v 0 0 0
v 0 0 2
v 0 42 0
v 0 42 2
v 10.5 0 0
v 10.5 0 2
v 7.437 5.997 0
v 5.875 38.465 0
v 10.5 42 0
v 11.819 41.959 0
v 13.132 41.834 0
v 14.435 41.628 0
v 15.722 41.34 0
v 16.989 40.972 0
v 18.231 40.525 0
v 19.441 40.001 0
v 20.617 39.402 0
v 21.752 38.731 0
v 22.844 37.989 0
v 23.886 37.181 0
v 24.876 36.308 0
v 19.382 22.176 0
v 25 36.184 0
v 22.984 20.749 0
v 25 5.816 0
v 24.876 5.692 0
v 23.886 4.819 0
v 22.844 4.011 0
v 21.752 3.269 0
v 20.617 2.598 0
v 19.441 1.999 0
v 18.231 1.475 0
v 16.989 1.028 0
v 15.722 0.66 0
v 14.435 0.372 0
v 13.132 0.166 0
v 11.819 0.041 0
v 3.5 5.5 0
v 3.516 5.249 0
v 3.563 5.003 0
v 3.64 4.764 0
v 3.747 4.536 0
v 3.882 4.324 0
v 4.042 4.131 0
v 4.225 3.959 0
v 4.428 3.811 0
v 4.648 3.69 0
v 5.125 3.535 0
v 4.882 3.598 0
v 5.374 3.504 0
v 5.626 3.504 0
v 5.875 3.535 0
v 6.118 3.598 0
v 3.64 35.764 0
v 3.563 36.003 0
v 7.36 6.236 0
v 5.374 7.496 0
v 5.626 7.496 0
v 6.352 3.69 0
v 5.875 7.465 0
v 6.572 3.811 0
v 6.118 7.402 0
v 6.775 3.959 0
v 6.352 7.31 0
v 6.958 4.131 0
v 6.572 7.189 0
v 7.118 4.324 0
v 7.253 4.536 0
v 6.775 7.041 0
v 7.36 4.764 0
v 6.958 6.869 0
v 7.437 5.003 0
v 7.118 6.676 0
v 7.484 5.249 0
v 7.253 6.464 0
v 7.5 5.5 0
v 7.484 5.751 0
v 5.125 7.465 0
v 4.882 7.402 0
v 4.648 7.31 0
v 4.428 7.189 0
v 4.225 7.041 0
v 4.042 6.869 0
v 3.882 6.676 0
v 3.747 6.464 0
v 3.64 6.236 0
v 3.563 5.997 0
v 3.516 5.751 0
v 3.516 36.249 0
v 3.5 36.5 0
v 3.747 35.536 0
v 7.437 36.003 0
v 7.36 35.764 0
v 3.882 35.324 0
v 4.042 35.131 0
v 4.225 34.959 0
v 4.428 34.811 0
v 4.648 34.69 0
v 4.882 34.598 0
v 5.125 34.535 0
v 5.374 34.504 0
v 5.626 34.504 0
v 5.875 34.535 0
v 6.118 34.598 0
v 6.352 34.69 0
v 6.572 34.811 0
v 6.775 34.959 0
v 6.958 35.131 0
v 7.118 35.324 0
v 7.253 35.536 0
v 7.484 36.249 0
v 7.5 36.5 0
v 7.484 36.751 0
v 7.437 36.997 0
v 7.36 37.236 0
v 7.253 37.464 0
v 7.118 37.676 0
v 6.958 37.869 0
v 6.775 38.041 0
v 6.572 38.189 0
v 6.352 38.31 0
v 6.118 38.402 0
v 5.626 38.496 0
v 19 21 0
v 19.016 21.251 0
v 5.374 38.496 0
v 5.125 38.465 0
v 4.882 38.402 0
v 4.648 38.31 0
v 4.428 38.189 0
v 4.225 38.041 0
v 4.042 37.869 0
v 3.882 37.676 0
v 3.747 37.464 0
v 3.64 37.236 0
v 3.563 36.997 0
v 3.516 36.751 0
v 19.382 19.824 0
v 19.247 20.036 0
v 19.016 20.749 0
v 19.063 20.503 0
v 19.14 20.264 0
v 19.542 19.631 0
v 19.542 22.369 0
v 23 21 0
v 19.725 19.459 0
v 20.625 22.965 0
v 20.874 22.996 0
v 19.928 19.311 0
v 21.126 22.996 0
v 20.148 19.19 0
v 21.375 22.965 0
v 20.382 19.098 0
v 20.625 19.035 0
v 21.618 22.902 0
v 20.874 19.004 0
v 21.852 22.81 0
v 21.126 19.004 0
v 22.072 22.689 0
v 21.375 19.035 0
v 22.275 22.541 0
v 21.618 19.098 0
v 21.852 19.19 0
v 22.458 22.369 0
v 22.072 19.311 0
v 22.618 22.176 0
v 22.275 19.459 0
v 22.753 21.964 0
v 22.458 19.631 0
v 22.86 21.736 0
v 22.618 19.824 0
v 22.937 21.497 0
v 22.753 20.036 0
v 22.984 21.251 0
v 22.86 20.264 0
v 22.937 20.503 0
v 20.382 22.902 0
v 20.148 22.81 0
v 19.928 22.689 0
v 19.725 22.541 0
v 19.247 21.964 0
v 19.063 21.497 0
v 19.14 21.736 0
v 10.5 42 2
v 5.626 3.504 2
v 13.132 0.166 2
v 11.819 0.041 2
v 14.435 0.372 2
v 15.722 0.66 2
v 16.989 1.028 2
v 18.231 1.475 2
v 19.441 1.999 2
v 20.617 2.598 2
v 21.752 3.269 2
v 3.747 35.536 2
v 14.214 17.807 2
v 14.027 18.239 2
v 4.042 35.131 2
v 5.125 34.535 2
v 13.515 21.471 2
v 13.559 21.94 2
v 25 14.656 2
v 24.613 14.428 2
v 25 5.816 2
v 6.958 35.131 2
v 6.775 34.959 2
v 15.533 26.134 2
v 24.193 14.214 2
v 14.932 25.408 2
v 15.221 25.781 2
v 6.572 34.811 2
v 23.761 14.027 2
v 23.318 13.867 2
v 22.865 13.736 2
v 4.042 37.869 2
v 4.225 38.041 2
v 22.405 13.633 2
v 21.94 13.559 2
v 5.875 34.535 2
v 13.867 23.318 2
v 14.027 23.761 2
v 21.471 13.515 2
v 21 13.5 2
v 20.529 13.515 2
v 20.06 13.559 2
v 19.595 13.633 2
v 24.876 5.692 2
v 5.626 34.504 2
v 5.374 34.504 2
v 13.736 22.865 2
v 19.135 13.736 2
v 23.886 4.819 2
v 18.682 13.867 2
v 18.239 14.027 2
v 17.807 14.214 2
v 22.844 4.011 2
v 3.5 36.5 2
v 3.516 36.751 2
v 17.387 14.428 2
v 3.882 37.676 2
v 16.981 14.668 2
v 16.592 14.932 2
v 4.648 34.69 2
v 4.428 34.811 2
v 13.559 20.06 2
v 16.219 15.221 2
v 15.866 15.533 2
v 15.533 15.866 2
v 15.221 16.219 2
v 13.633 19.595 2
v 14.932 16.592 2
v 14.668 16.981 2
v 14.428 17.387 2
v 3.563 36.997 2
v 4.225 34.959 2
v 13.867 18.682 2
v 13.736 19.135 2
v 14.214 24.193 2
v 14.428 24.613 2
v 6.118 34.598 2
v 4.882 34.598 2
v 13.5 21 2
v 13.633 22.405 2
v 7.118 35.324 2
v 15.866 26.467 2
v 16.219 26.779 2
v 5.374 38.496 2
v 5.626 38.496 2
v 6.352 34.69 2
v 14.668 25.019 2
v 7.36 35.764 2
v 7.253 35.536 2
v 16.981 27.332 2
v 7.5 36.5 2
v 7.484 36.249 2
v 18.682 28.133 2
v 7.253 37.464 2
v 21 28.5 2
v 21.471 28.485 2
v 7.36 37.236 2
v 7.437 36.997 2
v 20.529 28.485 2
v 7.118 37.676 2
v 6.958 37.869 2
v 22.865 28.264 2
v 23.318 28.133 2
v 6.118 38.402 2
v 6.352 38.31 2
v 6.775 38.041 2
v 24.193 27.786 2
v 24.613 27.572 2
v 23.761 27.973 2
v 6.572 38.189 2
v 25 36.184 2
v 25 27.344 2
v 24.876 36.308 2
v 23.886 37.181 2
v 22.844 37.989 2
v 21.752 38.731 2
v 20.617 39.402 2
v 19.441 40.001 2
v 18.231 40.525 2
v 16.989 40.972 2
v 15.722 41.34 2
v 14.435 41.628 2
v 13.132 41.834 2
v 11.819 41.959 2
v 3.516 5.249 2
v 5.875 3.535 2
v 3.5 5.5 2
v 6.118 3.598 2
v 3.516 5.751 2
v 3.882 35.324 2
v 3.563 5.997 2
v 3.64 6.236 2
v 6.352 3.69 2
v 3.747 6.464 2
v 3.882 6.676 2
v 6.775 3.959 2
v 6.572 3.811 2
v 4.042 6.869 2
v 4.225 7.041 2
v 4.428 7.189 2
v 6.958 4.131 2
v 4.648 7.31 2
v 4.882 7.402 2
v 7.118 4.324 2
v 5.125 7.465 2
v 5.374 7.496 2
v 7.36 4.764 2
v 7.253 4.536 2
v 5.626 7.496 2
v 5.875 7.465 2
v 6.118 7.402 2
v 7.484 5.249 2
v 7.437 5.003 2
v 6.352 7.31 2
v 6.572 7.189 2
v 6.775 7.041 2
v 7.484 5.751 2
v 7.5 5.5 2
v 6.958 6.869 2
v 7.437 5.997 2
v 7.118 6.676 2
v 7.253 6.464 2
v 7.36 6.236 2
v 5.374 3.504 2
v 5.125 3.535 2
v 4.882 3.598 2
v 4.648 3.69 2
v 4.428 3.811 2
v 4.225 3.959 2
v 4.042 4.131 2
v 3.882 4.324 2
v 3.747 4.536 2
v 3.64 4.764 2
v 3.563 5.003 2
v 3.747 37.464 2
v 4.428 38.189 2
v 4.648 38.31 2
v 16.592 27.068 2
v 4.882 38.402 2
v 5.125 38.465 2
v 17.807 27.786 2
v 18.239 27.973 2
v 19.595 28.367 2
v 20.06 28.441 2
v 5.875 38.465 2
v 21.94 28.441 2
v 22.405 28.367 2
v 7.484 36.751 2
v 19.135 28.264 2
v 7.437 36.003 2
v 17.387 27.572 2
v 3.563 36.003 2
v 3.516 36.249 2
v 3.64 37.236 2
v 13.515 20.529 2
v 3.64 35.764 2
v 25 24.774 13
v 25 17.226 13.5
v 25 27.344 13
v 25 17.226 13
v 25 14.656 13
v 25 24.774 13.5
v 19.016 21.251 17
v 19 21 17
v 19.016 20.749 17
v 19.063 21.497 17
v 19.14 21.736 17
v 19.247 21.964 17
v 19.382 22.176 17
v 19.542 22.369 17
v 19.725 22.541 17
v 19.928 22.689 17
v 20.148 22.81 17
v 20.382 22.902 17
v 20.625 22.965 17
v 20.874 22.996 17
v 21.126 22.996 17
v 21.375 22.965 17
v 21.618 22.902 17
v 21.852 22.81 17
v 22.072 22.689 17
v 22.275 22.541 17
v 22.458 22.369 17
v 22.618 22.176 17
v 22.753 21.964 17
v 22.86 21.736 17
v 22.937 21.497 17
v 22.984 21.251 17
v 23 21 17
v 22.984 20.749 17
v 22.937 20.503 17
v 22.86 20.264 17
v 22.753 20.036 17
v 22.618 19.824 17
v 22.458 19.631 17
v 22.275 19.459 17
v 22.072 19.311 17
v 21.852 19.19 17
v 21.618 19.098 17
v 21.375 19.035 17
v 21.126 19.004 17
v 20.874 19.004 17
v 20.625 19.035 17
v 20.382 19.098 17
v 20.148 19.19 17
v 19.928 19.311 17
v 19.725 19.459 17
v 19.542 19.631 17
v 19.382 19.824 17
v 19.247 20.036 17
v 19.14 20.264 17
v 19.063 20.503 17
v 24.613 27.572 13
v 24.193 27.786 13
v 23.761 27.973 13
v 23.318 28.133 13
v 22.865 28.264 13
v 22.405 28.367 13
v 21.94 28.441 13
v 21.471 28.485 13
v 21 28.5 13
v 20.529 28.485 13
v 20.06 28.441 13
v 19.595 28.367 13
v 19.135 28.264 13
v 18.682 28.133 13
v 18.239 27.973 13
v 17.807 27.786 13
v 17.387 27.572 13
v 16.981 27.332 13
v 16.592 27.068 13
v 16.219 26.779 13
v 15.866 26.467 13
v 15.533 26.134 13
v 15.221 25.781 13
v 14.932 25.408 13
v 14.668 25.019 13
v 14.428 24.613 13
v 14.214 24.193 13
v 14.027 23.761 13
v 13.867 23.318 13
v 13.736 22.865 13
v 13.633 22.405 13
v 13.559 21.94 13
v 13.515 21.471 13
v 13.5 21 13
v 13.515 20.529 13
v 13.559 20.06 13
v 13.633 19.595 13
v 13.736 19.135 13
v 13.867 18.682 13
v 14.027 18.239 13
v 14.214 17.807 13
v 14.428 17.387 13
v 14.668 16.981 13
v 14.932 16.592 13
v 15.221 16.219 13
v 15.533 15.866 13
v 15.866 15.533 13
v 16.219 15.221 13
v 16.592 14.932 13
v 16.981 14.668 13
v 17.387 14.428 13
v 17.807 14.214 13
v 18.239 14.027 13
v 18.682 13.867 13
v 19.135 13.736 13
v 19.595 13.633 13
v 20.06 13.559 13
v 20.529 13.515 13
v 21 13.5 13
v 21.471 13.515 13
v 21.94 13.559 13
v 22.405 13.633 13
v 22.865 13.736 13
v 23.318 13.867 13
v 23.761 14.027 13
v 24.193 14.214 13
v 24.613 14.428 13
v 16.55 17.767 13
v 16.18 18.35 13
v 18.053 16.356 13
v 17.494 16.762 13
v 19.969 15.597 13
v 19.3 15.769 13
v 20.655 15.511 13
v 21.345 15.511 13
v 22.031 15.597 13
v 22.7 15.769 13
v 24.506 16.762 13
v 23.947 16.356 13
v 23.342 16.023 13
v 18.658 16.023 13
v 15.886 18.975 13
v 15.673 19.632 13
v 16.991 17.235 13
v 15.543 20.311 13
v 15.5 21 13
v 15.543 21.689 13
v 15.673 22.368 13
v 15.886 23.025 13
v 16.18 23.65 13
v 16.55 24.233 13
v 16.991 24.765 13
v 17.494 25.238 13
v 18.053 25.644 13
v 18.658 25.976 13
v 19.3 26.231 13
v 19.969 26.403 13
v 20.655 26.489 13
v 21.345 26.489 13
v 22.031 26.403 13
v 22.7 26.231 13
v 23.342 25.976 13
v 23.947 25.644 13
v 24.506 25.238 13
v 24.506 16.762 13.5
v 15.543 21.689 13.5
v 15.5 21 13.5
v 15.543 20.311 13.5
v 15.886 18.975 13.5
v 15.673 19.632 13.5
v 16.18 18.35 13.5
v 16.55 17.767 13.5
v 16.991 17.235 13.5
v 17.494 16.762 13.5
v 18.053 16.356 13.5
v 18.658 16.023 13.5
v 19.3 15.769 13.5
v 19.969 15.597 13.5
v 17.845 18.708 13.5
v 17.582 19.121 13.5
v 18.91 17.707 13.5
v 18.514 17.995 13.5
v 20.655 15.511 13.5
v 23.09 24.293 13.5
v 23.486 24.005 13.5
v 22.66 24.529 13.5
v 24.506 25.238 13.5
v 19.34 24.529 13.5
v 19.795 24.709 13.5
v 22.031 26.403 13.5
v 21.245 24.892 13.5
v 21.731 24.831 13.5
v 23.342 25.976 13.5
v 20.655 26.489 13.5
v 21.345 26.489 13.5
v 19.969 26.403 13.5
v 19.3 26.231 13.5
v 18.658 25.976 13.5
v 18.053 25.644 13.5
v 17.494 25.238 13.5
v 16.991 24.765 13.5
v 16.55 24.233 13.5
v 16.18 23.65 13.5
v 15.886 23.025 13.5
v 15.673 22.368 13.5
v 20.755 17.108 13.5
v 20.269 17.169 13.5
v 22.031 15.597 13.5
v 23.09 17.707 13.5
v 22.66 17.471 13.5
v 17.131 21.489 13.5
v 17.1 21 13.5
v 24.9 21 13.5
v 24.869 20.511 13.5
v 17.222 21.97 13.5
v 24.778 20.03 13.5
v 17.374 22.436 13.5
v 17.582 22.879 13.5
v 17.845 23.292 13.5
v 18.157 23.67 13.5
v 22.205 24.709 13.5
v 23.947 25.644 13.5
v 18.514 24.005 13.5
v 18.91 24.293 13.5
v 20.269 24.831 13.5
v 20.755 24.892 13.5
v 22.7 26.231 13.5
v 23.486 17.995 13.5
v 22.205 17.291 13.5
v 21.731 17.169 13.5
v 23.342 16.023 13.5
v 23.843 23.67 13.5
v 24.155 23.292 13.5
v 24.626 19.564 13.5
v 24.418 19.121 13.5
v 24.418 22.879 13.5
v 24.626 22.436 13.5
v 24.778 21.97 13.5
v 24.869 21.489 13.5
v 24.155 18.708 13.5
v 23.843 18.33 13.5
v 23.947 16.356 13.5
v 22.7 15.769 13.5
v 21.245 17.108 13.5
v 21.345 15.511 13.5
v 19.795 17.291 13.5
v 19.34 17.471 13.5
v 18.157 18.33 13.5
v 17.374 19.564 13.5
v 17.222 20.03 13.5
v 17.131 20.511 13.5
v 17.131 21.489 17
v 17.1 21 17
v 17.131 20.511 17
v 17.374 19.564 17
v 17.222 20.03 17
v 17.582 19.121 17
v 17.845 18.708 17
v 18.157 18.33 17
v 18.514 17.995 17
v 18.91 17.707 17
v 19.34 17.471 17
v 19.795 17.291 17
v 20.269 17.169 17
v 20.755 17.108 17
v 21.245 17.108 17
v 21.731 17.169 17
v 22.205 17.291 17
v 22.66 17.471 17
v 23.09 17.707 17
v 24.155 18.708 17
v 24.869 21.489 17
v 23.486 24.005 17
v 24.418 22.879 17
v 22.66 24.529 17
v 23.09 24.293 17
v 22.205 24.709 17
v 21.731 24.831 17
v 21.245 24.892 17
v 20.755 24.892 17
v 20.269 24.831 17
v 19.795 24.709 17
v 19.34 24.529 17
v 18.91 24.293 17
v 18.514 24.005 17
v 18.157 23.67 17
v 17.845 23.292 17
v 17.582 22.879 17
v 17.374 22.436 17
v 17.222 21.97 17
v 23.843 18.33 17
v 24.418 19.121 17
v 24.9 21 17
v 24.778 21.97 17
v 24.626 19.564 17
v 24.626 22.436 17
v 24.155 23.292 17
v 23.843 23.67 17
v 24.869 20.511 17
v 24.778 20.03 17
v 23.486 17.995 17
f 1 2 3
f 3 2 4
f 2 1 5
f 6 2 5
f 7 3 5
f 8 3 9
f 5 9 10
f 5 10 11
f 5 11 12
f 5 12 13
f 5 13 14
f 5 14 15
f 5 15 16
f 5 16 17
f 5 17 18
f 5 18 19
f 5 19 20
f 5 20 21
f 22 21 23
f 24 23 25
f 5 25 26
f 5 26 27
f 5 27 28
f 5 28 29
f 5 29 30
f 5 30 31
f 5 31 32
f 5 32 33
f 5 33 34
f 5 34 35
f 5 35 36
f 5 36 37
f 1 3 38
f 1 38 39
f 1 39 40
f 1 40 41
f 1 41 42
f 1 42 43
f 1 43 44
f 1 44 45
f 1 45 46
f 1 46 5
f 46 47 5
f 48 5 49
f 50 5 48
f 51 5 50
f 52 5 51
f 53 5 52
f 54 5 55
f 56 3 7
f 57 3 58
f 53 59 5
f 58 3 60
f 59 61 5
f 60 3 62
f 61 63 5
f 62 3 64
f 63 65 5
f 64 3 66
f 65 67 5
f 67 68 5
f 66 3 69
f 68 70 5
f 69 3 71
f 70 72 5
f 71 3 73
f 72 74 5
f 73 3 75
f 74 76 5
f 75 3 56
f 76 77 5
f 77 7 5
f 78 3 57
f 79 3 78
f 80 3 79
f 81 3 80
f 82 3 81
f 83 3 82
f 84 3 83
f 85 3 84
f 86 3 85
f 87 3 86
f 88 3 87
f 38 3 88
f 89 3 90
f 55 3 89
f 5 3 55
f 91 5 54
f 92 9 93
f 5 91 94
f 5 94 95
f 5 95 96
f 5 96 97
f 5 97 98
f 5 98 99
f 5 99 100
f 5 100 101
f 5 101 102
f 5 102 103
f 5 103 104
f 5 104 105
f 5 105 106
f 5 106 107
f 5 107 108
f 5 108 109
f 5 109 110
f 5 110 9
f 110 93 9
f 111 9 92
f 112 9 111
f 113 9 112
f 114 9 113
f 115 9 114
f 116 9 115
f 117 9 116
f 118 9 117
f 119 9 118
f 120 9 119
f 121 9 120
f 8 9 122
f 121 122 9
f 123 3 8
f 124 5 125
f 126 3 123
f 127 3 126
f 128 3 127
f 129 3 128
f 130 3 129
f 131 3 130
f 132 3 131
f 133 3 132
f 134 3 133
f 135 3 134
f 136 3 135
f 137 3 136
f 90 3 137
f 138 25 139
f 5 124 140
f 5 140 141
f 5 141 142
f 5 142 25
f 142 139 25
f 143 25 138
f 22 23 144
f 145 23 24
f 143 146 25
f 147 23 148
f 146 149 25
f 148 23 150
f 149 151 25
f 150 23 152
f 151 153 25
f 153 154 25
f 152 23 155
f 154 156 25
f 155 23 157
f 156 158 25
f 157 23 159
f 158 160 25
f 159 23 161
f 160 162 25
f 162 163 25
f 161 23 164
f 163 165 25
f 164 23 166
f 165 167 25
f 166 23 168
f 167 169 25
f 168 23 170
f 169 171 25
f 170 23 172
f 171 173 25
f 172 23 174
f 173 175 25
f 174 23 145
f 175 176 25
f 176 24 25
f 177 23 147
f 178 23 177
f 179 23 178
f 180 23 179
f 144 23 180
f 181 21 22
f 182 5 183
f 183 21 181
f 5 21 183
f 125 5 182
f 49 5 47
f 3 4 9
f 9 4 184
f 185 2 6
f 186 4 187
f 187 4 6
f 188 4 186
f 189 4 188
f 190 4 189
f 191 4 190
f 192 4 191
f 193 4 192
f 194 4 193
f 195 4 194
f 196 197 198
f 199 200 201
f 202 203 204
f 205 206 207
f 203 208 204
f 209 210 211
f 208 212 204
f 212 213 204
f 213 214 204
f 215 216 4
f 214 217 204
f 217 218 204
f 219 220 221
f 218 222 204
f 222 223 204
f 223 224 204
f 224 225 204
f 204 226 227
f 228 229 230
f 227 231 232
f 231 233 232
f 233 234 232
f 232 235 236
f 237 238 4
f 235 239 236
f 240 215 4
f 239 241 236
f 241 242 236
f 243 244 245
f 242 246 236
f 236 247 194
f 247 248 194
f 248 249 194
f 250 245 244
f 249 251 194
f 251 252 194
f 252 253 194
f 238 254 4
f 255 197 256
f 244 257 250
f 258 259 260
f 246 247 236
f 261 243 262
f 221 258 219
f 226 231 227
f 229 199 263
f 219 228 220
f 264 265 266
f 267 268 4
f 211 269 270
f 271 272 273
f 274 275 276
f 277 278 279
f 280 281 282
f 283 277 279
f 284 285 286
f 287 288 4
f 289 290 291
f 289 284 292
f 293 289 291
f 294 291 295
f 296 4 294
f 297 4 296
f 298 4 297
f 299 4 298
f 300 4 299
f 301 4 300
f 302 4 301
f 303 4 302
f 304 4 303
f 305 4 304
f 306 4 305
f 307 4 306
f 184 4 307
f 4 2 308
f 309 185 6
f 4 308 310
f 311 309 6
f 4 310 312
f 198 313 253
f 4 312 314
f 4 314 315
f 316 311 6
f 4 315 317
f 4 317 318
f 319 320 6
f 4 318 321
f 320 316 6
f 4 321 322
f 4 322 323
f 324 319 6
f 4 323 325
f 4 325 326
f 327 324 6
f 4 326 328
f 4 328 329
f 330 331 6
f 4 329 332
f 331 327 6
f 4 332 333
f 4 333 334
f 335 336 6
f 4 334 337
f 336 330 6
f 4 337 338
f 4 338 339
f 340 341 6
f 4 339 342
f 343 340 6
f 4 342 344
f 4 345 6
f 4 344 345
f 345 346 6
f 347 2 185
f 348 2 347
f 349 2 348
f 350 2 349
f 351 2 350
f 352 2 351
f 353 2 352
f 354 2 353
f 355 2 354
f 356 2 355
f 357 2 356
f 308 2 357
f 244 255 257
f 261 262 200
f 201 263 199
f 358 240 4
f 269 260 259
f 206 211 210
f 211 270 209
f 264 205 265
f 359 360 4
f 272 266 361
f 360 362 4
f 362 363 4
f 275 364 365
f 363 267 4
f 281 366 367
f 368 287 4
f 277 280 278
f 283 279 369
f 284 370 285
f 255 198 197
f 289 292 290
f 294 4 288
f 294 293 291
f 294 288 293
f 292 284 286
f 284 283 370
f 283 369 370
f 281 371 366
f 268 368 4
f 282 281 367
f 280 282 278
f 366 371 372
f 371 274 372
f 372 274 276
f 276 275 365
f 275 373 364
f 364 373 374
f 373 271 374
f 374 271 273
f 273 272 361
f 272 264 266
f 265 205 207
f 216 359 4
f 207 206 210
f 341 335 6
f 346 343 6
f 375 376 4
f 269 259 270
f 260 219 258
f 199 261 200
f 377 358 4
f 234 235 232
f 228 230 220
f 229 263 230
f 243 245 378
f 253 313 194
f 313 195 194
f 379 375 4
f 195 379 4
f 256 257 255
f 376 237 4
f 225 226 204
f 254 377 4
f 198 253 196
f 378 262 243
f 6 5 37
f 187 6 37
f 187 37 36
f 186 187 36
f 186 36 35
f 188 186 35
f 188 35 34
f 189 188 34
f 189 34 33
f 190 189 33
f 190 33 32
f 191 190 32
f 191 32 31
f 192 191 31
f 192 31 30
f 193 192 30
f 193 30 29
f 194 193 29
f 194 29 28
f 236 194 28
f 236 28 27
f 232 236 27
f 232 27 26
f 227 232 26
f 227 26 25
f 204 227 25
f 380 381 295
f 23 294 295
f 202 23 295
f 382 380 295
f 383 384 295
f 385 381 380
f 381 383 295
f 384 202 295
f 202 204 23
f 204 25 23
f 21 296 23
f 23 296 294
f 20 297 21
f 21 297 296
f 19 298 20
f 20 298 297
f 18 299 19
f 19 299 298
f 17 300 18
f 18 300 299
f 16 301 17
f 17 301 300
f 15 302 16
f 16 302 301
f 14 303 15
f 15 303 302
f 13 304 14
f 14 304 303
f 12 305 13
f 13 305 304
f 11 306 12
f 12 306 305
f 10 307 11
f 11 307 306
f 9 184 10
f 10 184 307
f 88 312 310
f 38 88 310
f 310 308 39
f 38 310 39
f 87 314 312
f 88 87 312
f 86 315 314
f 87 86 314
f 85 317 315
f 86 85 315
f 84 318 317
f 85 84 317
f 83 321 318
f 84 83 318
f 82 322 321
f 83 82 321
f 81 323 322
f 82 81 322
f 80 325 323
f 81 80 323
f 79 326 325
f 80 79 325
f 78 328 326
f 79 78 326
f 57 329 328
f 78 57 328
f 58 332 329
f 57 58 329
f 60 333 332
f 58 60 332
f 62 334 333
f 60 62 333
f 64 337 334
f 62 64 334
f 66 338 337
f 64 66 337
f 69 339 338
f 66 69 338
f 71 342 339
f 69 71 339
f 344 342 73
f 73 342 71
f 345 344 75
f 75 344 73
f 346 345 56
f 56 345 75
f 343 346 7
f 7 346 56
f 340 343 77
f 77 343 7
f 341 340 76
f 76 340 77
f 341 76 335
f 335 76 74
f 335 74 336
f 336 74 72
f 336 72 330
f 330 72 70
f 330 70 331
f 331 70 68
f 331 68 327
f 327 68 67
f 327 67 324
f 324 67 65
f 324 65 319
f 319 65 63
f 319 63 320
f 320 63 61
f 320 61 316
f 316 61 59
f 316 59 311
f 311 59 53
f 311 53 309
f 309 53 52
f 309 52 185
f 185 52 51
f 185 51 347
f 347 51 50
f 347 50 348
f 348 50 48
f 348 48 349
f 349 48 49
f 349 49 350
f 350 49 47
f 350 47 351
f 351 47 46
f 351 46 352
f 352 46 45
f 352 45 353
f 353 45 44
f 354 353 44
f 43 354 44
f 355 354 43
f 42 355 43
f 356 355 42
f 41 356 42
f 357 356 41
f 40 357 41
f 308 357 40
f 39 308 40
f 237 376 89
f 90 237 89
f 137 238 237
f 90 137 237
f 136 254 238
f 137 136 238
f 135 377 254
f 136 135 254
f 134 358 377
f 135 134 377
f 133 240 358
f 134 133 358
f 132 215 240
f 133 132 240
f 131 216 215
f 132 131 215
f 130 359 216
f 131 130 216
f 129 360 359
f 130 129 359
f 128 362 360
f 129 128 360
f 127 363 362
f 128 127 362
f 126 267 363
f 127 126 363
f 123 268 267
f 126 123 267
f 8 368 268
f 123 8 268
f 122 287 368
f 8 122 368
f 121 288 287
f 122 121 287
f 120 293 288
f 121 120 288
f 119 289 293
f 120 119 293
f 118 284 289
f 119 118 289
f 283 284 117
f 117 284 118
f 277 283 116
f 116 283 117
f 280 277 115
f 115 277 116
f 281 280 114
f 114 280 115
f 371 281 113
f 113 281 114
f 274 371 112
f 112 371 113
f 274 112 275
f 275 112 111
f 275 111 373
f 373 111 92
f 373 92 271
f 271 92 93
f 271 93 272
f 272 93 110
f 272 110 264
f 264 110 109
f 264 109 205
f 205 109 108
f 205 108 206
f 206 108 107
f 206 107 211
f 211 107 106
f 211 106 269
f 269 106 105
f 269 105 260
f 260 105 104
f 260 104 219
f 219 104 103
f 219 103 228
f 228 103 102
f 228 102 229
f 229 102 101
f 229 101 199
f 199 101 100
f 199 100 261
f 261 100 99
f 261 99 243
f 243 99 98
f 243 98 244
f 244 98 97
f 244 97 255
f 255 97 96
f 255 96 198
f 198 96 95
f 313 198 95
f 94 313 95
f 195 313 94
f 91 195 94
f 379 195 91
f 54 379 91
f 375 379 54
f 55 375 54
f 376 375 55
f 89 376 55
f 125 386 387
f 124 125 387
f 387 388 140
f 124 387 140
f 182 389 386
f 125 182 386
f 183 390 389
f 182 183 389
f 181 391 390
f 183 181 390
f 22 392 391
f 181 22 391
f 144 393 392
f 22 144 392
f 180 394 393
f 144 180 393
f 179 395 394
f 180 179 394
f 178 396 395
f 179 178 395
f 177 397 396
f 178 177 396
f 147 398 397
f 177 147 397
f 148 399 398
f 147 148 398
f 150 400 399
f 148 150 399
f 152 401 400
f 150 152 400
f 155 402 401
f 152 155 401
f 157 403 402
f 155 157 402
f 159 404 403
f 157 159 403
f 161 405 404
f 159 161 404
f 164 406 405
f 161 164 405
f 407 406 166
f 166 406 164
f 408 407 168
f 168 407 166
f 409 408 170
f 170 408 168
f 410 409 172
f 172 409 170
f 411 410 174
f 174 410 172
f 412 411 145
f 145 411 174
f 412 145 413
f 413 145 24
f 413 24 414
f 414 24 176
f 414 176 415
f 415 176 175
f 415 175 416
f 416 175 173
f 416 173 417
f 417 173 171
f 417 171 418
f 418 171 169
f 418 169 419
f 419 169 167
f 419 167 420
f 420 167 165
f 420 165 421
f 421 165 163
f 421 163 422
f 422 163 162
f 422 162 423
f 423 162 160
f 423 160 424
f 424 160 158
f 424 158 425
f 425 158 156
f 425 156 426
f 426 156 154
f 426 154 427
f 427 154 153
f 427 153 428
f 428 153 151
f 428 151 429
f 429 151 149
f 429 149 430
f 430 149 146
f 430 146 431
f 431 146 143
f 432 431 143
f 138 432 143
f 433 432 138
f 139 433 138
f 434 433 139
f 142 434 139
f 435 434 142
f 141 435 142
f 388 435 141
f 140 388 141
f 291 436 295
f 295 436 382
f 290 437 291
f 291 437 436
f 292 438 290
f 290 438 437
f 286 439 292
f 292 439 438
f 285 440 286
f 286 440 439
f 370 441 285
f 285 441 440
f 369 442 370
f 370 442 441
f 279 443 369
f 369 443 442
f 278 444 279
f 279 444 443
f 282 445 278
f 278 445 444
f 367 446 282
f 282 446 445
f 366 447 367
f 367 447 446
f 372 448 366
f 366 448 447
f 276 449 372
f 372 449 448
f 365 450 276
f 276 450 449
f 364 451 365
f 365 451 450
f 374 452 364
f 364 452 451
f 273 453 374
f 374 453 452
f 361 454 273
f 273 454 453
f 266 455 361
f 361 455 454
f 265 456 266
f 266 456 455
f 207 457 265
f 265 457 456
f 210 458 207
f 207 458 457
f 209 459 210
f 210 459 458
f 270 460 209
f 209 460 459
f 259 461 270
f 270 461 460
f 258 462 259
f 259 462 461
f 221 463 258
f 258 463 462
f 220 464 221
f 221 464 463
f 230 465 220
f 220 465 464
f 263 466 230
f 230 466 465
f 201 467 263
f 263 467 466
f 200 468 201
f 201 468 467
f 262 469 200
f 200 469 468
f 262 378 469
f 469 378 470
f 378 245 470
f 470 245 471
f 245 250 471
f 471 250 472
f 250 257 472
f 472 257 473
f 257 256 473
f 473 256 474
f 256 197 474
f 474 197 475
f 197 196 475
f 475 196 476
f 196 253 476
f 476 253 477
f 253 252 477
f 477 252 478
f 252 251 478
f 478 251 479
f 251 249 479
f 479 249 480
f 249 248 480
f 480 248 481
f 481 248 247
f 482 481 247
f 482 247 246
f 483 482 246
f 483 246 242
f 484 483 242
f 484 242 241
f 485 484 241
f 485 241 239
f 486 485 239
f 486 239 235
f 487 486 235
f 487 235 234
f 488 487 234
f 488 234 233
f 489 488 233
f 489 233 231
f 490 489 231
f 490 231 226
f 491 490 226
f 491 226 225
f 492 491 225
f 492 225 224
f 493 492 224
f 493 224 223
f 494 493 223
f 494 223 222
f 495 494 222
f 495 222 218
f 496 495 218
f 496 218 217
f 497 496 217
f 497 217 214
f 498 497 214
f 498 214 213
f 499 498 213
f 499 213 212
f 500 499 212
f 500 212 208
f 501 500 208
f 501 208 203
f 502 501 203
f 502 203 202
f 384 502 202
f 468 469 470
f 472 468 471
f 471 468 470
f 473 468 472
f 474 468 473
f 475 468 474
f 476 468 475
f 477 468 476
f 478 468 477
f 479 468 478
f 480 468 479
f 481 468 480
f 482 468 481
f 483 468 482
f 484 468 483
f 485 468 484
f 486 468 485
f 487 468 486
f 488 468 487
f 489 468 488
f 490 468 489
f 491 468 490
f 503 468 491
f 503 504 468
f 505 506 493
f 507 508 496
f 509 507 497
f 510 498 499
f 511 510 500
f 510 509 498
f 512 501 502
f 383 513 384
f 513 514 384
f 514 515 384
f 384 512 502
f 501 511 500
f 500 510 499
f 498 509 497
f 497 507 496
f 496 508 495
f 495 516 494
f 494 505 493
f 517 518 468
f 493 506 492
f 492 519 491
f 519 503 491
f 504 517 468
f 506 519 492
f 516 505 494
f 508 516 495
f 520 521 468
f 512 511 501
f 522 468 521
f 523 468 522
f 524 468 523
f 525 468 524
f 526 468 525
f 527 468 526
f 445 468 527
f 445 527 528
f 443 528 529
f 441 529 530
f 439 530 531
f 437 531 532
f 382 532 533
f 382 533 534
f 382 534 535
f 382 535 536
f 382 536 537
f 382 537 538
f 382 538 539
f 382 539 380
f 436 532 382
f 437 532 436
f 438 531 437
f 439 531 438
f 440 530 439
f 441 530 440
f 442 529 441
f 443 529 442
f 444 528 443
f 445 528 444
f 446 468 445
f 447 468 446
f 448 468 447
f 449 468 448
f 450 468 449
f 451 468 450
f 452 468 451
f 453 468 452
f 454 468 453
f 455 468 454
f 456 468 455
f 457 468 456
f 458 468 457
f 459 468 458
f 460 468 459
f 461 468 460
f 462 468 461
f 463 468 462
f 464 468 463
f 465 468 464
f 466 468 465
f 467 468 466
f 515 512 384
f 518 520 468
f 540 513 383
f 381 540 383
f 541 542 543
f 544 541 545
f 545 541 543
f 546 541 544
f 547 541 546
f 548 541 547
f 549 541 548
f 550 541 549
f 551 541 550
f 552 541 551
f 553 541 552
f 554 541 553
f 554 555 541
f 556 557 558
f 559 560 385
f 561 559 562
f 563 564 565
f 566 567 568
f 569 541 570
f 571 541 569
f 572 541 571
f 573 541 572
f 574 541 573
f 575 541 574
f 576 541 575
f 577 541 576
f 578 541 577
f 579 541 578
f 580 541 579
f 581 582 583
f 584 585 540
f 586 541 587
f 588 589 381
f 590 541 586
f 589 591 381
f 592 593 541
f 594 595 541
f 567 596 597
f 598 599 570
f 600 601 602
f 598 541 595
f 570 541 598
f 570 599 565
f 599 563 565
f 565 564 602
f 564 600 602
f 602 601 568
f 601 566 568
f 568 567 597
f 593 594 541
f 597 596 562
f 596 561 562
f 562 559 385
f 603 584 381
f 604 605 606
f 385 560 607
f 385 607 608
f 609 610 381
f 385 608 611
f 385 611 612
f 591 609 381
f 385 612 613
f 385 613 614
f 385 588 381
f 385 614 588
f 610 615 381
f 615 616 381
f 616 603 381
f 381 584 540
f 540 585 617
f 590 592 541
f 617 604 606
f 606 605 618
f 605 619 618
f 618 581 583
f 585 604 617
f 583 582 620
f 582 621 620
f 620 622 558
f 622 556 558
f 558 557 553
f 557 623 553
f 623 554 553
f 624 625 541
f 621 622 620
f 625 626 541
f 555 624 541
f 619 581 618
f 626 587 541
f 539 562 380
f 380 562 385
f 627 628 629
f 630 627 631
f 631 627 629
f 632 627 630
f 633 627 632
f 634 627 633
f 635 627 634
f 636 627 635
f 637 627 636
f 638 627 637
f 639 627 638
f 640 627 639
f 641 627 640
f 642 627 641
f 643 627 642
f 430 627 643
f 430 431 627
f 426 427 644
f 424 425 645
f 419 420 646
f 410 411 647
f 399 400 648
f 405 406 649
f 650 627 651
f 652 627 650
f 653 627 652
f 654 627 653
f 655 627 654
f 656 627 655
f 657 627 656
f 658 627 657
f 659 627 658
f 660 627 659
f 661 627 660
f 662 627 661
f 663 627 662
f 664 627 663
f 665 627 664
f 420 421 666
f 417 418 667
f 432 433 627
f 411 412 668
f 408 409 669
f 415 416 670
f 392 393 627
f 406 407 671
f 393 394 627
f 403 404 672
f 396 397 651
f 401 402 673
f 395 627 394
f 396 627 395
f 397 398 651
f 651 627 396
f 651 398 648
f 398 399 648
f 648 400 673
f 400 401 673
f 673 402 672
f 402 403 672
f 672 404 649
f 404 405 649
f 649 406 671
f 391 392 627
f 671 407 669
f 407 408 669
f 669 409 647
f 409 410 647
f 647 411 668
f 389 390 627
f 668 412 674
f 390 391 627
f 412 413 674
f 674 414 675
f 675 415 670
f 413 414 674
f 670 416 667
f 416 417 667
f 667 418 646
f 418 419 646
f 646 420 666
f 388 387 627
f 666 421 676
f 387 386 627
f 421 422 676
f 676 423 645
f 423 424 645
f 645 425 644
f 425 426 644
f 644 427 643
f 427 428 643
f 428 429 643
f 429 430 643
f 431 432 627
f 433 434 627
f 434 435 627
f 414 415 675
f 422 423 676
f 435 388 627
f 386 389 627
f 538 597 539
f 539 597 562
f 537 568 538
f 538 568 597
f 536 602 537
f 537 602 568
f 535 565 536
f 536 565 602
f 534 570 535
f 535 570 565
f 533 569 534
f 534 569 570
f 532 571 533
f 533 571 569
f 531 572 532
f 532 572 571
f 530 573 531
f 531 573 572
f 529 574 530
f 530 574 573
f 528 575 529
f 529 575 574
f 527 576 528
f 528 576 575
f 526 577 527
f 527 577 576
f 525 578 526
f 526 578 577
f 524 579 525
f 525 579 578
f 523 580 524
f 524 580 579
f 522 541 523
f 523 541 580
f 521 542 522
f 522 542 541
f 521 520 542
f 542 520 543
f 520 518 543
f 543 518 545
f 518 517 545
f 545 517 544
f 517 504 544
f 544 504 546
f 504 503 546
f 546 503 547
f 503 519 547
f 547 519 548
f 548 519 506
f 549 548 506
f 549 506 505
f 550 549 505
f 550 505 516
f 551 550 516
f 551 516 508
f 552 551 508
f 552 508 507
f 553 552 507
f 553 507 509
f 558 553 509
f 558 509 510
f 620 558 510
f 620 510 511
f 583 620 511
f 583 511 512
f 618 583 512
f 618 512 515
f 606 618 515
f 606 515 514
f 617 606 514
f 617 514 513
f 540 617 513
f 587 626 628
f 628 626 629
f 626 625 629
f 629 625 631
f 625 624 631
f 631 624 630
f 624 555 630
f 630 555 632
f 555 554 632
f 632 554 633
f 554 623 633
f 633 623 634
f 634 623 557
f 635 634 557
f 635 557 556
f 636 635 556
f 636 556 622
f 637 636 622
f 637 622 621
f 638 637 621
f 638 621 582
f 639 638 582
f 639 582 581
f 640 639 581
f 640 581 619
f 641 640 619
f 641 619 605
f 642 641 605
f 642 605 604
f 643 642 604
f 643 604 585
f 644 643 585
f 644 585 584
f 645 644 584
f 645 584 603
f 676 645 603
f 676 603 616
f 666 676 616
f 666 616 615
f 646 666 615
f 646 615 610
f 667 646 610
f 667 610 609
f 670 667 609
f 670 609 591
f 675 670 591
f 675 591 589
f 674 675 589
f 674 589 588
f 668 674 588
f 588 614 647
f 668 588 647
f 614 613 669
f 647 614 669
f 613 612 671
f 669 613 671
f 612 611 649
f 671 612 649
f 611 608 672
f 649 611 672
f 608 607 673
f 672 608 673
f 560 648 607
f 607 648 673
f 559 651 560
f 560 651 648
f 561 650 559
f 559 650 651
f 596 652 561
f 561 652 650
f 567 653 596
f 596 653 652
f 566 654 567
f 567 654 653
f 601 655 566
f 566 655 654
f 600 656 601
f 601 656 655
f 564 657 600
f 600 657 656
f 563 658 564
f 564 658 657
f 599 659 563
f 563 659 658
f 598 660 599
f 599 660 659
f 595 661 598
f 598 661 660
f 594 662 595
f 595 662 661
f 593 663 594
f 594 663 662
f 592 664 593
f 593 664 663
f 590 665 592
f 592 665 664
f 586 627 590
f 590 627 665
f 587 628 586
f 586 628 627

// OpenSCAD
r_m3=2;
r_ecrou_m3=3.3;
r_m8=3.9;
ep_608=7;
ep=2;
l=42;
height=30;

module retour_x(){
	difference(){
		union(){
		cube([l/4,l,ep]);
		translate([l/4,l/2,0]){cylinder(r=l/2, h=ep, $fn=100);}

		translate([l/2,l/2,ep]){cylinder(r=7.5, h=height/2-ep_608/2-0.5, $fn=100);}
		translate([l/2,l/2,ep+height/2-ep_608/2-0.5]){cylinder(r=5.5, h=0.5, $fn=50);}

		translate([l/2,l/2,ep+height/2-2-ep_608/2+2]){cylinder(r=r_m8, h=ep_608/2, $fn=50);}

		}
	
		//trous pour fixation
		translate([5.5,5.5,-5]){cylinder(r=r_m3, h=15, $fn=50);}
		translate([l-5.5,5.5,-5]){cylinder(r=r_m3, h=15, $fn=50);}
		translate([5.5,l-5.5,-5]){cylinder(r=r_m3, h=15, $fn=50);}
		translate([l-5.5,l-5.5,-5]){cylinder(r=r_m3, h=15, $fn=50);}
		
		translate([l/2,l/2,-5]){cylinder(r=r_m3, h=50, $fn=50);}

		//rabotage de la pièce pour rentrer
		translate([25,-5,-5]){cube([60,60,50]);}
		translate([-15,-5,-5]){cube([15,60,50]);}
	}


}
retour_x();
